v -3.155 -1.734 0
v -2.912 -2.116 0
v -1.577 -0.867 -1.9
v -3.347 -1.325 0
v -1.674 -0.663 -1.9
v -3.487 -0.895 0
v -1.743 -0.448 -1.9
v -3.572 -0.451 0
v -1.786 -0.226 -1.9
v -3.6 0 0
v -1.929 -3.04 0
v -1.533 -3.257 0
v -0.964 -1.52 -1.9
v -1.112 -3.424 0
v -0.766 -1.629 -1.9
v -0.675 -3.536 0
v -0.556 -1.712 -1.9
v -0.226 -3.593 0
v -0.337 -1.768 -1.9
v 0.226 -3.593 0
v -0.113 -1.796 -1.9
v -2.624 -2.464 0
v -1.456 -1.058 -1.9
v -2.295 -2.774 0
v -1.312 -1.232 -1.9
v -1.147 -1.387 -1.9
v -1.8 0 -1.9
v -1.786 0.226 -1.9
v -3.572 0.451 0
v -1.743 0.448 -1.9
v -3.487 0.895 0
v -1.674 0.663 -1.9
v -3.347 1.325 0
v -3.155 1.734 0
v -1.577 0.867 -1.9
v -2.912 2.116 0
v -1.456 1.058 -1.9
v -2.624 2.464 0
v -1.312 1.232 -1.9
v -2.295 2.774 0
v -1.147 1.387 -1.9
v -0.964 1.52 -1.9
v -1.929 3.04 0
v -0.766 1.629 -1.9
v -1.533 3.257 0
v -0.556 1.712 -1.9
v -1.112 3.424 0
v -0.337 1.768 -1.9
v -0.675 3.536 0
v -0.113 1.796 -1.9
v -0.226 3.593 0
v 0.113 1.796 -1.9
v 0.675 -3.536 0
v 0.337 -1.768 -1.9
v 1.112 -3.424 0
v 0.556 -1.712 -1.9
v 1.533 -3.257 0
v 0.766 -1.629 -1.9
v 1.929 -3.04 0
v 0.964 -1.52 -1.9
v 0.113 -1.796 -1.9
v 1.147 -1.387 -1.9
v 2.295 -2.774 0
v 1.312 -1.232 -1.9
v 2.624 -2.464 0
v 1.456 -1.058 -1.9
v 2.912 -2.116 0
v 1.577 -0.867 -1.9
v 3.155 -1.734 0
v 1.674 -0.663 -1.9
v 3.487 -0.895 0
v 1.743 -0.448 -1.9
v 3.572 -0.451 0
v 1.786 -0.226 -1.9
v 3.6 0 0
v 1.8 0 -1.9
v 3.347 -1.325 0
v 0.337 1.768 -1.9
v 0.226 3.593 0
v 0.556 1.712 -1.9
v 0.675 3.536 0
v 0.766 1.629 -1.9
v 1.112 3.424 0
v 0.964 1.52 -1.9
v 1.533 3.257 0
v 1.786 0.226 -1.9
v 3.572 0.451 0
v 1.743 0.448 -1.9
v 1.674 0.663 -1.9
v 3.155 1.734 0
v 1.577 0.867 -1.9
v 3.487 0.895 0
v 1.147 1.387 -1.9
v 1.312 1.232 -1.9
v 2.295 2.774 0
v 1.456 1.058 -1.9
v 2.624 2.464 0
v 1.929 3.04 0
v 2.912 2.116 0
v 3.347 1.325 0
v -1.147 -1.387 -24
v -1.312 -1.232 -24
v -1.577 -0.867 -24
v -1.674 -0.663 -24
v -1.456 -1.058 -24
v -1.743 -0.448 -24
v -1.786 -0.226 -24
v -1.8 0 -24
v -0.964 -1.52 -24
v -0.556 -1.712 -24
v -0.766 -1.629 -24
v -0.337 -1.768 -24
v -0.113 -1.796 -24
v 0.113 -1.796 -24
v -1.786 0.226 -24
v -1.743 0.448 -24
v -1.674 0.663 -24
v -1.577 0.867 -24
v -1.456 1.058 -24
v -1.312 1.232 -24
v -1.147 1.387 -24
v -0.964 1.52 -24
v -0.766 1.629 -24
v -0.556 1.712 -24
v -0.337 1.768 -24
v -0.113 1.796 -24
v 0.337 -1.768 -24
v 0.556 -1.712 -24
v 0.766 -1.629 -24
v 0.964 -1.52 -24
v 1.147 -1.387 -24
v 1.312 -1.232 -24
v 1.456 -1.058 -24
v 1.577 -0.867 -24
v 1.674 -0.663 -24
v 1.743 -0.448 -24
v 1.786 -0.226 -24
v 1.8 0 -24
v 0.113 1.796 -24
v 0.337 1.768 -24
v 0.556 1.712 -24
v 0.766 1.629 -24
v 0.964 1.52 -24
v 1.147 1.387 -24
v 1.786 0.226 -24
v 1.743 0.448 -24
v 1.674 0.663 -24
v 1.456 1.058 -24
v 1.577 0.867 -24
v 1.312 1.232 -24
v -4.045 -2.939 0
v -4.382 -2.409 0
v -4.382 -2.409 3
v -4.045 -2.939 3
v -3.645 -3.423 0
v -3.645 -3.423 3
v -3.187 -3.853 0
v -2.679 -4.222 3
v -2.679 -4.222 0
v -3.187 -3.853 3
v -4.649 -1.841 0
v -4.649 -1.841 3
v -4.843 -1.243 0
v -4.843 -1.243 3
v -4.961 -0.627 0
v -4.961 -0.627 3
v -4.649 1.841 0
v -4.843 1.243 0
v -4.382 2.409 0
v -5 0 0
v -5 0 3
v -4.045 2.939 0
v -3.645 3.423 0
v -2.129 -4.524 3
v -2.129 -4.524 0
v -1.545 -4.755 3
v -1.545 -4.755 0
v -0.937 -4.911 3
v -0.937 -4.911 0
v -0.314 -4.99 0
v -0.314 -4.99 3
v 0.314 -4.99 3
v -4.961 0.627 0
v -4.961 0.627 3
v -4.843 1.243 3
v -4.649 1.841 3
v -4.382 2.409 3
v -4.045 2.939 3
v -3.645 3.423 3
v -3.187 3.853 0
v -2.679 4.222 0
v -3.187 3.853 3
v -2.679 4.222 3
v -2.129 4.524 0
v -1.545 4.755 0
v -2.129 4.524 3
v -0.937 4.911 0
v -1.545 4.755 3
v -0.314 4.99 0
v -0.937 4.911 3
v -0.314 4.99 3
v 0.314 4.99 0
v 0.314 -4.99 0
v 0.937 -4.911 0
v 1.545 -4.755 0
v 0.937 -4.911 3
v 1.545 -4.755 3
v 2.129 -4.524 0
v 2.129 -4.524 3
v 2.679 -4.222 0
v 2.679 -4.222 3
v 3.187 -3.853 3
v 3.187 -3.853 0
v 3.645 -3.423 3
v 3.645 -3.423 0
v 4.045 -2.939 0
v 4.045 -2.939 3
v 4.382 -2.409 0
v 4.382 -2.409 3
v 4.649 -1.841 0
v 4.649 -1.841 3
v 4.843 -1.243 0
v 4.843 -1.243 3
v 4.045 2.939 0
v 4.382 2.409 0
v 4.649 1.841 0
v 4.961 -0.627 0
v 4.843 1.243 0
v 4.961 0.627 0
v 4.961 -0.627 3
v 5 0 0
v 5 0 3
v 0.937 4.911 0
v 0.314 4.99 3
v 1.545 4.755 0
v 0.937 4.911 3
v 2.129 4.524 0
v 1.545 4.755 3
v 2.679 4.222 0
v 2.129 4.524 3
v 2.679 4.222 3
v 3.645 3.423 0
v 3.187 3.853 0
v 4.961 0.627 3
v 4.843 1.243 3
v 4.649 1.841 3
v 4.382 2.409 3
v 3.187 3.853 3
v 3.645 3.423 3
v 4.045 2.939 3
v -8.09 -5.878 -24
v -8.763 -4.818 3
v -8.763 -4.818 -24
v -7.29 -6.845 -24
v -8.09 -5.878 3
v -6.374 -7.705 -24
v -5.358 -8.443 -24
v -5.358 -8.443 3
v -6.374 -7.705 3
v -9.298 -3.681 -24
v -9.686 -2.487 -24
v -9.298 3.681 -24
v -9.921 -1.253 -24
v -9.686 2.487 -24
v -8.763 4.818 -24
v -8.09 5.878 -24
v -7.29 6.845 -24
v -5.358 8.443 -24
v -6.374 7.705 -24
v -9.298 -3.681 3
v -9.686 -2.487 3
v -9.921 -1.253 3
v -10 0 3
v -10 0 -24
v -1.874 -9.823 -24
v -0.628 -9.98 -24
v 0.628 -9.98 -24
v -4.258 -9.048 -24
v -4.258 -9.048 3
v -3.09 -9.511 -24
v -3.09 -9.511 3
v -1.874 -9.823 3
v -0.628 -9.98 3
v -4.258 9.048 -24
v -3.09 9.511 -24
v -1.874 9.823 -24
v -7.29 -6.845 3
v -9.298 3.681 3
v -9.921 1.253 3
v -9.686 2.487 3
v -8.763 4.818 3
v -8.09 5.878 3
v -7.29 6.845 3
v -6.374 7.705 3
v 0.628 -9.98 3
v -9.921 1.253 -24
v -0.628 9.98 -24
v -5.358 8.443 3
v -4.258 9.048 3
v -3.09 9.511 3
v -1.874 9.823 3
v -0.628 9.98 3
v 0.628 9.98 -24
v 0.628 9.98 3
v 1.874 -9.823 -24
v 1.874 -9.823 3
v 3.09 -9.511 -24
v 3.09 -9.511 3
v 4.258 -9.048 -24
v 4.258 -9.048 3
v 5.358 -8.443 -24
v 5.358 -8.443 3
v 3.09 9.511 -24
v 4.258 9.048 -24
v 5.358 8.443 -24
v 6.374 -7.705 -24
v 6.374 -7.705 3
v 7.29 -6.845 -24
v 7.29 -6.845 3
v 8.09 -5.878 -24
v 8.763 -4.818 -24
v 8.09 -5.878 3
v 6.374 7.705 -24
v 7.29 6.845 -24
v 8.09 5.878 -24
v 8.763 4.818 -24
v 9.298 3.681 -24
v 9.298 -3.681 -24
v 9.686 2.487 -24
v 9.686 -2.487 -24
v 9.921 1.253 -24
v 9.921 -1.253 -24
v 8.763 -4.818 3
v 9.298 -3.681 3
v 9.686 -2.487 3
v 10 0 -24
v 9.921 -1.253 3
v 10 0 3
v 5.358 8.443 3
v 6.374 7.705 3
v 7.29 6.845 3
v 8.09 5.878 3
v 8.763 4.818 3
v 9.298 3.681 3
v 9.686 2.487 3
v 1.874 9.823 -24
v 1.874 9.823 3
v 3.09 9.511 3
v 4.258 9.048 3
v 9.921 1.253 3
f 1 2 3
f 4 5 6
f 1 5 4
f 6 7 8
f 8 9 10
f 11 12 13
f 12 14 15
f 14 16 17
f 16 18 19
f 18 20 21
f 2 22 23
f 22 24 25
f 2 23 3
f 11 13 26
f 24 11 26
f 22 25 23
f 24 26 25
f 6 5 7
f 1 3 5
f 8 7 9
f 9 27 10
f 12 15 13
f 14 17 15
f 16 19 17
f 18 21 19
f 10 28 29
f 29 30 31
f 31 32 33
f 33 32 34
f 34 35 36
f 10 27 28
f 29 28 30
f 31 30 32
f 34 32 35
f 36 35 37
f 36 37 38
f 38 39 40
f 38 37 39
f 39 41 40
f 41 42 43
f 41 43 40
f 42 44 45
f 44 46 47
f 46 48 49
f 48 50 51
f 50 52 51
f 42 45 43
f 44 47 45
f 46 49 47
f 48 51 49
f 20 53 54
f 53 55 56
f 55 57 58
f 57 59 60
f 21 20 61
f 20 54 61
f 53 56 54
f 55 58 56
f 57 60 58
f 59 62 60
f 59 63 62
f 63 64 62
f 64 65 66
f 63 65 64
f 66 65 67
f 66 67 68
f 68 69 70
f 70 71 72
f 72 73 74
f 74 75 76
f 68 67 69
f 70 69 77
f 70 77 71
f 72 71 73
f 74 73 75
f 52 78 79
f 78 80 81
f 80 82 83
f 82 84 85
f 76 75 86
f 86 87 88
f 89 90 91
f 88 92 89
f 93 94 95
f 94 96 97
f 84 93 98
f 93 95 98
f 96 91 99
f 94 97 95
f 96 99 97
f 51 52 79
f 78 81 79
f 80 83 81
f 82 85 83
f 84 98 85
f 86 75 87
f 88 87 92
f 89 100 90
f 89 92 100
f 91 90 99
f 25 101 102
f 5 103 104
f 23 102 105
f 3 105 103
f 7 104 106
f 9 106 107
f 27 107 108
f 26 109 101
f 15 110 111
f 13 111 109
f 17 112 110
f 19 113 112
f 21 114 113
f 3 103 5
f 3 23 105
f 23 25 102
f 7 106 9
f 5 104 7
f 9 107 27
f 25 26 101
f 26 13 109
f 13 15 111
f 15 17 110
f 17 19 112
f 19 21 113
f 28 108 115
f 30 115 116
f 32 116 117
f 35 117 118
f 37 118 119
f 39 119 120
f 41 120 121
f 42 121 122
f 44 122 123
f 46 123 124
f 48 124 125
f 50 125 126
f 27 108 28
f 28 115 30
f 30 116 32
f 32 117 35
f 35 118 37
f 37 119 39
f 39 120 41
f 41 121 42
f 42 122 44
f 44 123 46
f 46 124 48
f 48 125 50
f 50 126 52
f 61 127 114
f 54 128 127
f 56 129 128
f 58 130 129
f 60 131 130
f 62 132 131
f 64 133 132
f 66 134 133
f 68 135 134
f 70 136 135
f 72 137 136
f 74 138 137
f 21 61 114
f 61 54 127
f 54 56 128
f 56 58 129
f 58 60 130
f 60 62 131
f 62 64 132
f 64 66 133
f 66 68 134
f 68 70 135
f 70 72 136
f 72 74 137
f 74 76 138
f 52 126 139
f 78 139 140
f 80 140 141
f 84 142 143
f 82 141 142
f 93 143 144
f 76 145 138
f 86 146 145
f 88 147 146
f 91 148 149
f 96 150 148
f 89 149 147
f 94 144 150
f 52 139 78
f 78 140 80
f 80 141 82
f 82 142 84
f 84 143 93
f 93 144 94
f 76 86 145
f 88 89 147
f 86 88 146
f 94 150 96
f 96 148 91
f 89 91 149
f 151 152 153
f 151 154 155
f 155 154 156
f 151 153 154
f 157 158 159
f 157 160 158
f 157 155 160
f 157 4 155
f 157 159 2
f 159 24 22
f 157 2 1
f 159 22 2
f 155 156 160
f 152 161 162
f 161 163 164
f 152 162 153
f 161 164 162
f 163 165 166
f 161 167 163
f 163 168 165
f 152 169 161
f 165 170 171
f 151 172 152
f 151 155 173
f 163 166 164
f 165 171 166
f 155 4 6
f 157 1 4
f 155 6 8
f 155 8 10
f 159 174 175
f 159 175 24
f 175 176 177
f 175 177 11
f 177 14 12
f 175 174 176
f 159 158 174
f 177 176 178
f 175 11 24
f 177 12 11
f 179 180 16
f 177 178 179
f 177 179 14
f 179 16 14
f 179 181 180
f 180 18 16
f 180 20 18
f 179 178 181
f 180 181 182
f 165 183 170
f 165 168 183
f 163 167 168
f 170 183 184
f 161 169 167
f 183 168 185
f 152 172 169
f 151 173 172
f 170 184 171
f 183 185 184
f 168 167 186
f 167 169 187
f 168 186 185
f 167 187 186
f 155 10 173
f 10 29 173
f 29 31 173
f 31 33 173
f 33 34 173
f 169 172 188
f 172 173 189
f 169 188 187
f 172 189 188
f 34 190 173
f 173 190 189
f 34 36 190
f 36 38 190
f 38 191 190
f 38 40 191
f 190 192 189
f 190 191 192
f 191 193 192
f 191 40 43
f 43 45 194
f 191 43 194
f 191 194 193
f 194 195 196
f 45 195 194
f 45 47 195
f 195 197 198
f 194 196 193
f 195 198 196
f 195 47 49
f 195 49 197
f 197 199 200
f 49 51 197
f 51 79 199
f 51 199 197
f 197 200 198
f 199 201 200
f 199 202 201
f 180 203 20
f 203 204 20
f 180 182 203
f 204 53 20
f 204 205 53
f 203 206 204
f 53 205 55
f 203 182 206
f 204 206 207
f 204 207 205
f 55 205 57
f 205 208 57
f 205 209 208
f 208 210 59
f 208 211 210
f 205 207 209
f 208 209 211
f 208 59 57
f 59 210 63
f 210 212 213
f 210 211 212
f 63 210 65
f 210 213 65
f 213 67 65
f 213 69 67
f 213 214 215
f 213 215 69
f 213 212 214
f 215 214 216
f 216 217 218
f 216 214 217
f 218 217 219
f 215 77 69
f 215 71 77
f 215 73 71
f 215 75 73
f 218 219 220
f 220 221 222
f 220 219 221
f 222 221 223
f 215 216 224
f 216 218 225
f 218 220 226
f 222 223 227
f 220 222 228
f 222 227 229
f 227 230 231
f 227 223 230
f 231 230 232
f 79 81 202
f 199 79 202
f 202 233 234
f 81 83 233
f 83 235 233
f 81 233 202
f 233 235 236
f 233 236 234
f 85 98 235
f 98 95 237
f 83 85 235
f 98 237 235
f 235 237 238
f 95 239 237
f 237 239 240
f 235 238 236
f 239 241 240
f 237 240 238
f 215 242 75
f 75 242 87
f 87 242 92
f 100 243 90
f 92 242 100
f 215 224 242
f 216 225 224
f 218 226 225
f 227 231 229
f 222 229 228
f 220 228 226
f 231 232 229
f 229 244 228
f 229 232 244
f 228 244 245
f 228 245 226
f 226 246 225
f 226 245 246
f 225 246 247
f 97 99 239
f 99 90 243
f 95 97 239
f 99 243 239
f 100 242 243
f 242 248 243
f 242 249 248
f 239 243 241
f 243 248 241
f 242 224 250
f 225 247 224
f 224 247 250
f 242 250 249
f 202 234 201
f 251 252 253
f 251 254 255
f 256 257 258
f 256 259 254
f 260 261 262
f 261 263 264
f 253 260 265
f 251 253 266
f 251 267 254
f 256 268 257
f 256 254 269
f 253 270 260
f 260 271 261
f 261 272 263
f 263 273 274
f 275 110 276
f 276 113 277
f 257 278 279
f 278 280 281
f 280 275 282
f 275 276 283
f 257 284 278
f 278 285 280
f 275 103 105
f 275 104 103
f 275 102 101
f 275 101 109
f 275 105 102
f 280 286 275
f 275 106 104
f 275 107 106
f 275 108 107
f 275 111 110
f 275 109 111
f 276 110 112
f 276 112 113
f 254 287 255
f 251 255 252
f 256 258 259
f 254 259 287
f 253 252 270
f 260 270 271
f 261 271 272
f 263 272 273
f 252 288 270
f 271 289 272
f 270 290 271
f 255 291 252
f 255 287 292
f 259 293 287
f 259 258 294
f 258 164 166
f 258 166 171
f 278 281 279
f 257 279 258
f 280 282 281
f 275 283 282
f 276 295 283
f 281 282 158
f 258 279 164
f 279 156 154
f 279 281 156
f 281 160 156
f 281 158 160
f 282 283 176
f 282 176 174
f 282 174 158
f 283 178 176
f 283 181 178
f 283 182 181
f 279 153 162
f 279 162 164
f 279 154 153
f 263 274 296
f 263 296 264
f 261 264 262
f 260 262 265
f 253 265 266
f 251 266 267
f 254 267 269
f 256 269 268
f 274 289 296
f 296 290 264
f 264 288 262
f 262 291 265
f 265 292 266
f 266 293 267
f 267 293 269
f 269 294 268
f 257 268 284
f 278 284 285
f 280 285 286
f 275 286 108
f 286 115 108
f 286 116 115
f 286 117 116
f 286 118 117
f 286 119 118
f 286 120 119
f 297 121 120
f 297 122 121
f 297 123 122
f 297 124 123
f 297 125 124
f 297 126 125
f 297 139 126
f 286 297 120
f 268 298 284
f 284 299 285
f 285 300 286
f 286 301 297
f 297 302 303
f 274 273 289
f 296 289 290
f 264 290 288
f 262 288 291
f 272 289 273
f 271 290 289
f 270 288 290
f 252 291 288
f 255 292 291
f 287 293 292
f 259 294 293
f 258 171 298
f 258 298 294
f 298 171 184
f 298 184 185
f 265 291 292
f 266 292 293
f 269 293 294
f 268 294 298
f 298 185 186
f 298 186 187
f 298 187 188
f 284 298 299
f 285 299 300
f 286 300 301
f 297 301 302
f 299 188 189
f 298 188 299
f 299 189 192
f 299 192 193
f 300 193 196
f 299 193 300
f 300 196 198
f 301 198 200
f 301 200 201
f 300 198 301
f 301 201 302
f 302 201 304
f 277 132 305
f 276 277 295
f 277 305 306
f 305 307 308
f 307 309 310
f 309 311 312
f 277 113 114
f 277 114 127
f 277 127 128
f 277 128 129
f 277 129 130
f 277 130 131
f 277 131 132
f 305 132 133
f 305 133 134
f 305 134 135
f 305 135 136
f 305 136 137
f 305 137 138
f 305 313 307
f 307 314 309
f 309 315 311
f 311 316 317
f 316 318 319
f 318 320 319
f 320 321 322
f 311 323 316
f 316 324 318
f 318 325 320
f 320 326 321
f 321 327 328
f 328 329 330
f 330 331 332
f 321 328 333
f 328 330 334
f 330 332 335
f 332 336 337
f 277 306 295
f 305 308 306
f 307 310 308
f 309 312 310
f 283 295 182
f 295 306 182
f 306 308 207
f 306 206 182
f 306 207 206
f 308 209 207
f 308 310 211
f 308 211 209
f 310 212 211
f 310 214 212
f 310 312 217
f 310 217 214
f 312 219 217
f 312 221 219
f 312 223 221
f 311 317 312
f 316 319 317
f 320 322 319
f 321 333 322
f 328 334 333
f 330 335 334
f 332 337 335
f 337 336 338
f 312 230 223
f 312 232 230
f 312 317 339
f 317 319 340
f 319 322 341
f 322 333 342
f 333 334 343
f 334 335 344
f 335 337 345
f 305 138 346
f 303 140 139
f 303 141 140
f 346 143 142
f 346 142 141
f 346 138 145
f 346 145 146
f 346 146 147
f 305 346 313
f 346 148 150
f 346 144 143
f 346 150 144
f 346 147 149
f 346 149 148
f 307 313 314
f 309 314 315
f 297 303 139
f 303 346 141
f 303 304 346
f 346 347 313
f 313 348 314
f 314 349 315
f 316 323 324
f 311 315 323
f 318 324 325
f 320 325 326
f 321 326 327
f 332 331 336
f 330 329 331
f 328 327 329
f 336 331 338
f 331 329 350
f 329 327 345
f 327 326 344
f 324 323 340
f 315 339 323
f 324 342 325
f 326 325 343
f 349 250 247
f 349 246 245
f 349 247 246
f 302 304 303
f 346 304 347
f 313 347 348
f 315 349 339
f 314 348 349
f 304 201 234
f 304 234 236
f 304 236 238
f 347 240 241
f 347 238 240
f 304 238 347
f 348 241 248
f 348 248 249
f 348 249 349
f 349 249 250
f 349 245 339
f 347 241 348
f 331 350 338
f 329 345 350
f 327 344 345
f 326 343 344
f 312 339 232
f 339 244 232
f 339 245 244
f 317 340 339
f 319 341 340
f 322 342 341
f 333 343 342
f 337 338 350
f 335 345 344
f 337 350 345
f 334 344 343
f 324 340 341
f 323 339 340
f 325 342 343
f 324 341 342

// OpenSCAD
$fn = 50;

difference() {
	union() {
		translate(v = [0, 0, -24.0]) {
			cylinder(h = 27, r = 10.0);
		}
	}
	union() {
		translate(v = [0, 0, 0]) {
			rotate(a = [0, 0, 0]) {
				difference() {
					union() {
						translate(v = [0, 0, -27.0]) {
							cylinder(h = 27, r = 1.5);
						}
						translate(v = [0, 0, -1.9]) {
							cylinder(h = 1.9, r1 = 1.8, r2 = 3.6);
						}
						translate(v = [0, 0, -27.0]) {
							cylinder(h = 27, r = 1.8);
						}
						translate(v = [0, 0, -27.0]) {
							cylinder(h = 27, r = 1.5);
						}
					}
					union();
				}
			}
		}
		#cylinder(h = 3, r = 5.0);
	}
}
